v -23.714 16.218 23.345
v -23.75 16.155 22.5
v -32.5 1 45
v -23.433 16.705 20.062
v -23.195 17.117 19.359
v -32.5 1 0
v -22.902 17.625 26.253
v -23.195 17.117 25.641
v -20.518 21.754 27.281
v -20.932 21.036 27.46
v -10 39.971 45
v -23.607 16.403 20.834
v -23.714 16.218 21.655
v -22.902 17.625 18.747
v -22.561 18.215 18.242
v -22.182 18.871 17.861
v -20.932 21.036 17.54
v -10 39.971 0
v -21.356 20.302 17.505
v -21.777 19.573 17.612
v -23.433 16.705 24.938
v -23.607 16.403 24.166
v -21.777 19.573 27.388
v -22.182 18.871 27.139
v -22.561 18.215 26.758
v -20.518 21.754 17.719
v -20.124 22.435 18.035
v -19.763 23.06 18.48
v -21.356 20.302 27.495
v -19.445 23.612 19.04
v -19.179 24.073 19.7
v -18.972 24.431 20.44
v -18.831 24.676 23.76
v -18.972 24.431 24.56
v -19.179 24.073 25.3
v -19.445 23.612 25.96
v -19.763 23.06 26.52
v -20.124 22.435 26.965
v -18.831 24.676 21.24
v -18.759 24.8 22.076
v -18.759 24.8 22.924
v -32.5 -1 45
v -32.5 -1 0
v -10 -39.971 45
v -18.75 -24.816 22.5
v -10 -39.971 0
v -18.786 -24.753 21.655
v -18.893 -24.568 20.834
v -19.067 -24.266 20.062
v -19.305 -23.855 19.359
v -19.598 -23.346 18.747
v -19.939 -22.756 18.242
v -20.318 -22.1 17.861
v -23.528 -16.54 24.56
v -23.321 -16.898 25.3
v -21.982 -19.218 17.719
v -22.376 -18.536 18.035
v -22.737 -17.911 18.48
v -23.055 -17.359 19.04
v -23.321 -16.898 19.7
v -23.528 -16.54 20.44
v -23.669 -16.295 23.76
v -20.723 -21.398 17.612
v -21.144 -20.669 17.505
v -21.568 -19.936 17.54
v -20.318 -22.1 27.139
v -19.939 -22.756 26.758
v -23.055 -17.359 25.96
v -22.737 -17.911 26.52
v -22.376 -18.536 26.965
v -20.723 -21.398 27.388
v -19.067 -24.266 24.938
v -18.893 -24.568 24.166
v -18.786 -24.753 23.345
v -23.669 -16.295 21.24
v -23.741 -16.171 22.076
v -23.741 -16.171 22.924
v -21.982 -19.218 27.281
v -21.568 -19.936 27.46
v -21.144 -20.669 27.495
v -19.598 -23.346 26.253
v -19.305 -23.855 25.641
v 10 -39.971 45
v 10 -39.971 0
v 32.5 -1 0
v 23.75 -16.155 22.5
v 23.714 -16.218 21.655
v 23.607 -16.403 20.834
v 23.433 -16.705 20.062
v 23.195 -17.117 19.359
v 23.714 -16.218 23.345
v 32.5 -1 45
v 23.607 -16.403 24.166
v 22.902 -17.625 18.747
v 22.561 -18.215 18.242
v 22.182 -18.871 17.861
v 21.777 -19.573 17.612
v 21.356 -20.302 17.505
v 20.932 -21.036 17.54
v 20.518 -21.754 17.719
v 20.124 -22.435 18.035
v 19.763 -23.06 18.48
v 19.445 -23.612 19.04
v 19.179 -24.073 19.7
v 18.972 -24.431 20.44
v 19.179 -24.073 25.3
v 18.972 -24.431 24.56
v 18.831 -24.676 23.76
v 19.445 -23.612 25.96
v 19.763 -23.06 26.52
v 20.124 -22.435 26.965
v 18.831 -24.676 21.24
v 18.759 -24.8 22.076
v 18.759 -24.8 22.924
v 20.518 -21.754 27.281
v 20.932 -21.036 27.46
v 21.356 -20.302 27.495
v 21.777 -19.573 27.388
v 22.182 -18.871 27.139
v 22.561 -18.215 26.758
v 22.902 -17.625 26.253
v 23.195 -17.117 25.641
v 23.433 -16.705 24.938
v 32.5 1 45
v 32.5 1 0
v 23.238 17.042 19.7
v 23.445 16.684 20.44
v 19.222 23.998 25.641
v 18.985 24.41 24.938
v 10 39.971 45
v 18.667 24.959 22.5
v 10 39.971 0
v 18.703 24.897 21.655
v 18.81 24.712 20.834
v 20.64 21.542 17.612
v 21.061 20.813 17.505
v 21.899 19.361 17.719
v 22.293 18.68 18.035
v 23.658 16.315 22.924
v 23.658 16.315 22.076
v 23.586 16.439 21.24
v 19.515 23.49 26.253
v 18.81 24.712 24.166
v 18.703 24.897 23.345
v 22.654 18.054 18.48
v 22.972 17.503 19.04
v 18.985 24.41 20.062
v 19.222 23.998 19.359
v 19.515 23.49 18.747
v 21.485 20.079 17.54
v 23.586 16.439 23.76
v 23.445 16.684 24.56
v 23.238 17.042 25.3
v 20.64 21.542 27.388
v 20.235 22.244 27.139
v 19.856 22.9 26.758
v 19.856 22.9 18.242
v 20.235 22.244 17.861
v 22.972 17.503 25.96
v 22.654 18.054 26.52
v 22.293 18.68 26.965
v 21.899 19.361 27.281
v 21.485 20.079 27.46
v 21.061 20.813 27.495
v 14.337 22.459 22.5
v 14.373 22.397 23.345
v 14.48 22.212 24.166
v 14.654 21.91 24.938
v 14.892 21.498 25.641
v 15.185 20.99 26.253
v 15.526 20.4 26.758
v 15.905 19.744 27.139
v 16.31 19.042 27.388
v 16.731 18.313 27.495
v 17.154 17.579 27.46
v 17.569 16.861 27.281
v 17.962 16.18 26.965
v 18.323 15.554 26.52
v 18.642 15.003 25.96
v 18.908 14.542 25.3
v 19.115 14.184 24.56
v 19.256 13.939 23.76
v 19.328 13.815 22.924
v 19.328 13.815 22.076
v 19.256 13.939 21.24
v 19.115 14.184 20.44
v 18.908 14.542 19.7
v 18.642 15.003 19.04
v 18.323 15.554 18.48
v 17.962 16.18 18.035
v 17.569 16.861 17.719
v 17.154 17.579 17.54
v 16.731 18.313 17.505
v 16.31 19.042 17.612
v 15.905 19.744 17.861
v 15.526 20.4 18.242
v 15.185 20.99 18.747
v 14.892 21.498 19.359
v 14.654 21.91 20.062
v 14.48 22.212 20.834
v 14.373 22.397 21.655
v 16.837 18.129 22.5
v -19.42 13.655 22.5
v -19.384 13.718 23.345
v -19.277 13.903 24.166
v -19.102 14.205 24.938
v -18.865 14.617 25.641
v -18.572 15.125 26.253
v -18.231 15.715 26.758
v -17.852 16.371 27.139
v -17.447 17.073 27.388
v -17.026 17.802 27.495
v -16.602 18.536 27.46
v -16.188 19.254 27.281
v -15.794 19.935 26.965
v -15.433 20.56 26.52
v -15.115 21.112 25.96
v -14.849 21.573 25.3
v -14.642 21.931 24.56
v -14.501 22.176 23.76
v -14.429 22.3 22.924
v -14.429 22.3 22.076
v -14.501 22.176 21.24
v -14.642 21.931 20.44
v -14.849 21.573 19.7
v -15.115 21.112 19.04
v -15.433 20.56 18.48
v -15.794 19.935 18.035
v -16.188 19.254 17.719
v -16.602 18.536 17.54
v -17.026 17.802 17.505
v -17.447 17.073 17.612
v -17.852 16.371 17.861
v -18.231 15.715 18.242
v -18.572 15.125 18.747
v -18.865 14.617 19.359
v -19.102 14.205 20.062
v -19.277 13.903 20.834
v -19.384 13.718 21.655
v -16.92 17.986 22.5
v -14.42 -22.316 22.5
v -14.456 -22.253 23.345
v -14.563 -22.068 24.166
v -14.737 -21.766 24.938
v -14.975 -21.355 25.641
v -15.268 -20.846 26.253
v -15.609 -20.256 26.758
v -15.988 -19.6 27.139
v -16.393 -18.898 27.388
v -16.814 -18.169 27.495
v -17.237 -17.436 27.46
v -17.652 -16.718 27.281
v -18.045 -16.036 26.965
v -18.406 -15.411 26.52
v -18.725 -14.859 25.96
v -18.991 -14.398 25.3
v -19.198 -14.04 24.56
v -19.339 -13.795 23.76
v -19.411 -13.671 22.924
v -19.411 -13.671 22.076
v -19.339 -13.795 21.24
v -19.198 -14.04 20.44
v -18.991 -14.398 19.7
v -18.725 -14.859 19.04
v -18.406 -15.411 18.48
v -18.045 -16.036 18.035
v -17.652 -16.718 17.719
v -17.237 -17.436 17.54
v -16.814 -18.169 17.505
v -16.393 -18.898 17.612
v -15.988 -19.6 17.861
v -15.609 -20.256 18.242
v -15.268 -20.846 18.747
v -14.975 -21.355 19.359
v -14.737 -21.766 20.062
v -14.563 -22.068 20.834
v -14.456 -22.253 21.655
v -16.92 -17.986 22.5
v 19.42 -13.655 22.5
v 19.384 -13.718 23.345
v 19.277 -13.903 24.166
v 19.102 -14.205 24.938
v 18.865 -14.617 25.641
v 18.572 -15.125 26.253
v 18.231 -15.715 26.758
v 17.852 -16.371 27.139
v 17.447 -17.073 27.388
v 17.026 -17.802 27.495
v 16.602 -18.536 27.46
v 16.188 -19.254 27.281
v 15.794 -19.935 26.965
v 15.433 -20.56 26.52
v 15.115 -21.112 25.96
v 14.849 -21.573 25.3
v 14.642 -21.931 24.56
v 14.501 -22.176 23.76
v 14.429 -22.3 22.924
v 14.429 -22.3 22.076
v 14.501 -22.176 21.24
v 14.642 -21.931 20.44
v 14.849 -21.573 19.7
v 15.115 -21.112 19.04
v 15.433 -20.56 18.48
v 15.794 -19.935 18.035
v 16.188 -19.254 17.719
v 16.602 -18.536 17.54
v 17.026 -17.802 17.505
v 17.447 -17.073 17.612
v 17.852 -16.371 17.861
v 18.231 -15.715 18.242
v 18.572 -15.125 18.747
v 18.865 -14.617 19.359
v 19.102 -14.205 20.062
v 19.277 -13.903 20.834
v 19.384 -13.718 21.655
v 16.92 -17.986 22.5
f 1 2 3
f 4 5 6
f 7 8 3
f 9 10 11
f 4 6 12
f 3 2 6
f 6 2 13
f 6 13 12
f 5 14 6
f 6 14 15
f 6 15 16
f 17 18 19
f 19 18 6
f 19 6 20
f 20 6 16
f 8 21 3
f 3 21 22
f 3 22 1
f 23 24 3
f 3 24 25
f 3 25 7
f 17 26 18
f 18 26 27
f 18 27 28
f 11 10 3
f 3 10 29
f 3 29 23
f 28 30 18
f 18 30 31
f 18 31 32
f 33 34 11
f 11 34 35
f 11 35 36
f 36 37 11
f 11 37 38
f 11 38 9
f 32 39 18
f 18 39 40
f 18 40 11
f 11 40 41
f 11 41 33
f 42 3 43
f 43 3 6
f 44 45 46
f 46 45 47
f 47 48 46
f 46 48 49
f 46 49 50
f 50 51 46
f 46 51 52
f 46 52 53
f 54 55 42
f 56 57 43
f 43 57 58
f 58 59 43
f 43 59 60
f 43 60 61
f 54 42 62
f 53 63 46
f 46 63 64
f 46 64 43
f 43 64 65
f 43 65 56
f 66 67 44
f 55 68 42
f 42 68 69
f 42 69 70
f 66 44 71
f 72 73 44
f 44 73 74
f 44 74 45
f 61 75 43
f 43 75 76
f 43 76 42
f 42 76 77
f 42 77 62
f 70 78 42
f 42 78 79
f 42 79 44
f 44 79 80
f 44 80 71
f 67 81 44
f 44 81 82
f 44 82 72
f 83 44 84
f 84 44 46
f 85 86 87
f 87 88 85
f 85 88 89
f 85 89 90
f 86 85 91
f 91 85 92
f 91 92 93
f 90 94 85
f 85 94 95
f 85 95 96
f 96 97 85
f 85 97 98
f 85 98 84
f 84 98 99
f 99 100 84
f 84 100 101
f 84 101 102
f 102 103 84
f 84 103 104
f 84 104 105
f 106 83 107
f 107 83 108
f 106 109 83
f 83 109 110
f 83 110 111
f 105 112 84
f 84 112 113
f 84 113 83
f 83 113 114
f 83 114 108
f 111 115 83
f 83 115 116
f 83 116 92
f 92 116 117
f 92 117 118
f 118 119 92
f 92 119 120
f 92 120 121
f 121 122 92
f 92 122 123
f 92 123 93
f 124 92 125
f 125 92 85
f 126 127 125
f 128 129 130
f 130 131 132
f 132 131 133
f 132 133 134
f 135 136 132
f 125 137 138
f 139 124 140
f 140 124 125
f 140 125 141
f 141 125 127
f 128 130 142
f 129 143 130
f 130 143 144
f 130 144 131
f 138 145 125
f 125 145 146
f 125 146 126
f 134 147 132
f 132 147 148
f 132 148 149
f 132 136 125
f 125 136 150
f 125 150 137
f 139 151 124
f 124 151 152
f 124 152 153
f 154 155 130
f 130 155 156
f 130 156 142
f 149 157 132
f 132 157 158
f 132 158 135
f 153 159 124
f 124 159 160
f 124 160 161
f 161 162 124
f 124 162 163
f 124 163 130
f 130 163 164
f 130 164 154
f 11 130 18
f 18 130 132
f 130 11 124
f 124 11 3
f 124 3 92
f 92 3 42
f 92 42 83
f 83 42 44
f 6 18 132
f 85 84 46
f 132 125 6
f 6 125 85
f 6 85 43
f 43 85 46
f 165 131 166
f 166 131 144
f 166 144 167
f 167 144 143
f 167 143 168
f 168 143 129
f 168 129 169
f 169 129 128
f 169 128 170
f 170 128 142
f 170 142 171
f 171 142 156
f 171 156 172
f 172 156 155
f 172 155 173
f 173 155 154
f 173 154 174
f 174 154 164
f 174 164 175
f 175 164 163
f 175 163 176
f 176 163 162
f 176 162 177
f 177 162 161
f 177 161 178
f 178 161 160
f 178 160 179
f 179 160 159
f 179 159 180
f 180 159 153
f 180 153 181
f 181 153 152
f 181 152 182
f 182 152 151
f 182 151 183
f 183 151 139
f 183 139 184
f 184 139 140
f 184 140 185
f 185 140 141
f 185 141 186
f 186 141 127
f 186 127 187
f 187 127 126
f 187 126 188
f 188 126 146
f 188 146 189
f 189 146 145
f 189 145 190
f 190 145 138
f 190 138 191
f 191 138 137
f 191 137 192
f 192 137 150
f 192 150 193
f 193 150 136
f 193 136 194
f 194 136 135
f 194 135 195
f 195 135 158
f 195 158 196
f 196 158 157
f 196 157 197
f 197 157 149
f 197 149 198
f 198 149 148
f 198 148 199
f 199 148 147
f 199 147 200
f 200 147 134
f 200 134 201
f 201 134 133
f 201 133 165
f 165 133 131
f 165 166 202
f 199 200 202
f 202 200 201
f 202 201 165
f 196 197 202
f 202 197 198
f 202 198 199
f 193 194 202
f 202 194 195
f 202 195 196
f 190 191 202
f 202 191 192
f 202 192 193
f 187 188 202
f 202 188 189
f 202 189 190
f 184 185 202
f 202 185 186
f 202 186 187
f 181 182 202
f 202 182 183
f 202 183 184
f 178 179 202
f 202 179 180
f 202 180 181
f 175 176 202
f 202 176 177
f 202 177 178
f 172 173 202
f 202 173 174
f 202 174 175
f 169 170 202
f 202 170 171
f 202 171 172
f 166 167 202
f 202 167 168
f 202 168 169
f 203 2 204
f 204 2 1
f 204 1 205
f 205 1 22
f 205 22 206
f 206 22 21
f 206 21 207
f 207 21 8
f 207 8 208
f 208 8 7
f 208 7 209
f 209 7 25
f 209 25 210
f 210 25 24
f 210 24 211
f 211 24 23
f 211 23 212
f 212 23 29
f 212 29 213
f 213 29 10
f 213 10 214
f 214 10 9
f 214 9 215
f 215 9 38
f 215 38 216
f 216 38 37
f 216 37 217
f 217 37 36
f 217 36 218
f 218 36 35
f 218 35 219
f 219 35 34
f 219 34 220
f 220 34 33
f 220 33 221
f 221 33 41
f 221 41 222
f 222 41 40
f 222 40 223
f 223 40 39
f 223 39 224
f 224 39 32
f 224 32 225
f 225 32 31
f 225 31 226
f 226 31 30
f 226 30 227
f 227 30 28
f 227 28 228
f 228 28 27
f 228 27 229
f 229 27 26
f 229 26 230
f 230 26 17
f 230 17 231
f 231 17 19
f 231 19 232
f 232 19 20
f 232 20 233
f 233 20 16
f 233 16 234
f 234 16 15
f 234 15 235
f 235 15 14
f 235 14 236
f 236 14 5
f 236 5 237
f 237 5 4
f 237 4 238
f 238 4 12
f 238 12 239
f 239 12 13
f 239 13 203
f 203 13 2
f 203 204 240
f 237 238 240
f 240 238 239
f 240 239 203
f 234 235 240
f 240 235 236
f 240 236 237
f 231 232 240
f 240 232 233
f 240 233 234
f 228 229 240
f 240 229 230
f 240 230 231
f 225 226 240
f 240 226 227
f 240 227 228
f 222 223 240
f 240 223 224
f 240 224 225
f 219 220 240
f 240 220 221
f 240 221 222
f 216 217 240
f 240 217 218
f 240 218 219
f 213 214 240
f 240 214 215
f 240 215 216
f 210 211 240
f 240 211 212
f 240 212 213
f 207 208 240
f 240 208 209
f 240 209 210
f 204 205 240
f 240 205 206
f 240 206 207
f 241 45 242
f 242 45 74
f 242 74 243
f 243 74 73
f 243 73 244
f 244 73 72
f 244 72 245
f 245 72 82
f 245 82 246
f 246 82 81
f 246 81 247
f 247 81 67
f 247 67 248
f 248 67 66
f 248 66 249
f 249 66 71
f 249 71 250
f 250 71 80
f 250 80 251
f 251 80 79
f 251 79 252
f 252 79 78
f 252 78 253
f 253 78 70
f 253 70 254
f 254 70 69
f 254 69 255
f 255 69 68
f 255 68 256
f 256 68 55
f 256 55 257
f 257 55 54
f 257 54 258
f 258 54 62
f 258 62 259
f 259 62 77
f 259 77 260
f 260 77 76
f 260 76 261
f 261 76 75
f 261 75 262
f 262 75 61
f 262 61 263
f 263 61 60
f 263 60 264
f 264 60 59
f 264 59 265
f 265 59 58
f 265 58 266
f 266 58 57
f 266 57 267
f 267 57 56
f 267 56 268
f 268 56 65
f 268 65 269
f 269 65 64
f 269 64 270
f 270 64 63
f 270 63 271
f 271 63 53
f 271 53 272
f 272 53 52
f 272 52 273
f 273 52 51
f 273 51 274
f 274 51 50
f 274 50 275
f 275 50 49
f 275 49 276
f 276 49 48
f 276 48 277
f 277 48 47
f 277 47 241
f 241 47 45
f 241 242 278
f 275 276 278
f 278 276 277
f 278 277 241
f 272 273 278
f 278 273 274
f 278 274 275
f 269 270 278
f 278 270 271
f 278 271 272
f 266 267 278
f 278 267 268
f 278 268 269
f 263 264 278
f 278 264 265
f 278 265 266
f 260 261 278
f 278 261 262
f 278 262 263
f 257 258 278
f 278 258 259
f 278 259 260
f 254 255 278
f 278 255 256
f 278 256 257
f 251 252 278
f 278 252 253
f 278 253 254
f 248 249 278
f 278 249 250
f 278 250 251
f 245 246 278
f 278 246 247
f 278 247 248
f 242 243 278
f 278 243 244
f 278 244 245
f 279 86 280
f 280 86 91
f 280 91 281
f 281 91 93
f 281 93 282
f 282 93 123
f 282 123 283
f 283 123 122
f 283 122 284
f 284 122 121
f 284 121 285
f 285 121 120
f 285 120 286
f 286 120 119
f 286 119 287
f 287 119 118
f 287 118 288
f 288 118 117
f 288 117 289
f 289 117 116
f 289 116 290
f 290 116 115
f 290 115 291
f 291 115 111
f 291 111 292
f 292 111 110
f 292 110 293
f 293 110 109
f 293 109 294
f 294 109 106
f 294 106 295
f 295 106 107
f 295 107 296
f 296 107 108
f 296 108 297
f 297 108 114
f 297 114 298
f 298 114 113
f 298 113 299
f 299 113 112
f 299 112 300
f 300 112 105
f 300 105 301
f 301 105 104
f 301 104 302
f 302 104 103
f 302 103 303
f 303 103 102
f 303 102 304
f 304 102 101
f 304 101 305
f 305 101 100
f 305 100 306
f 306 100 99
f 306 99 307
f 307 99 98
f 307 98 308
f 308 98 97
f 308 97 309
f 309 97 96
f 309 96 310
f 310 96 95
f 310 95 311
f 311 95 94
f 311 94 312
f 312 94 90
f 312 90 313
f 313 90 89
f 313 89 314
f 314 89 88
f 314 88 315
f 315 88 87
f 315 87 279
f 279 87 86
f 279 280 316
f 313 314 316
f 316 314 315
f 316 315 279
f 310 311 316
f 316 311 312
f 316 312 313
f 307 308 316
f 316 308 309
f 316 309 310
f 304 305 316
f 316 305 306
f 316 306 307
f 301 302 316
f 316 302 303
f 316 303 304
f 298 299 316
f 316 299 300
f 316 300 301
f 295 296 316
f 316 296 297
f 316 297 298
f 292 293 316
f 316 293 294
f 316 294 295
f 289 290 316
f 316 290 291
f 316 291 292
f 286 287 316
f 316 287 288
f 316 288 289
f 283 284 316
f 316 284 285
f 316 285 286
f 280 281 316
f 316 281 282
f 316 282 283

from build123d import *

# Parameters (mm, degrees)
BOSS_EXTRUDE1_DEPTH = 45
SKETCH3_R           = 5
CUT_EXTRUDE1_DEPTH  = 5
SKETCH4_R           = 5
CUT_EXTRUDE2_DEPTH  = 5
SKETCH5_R           = 5
CUT_EXTRUDE3_DEPTH  = 5
SKETCH6_R           = 5
CUT_EXTRUDE4_DEPTH  = 5


with BuildPart() as part:
    # Sketch2 → Boss-Extrude1 (new body)
    with BuildSketch(Plane.XY):
        Polygon((-10, 39.97114317), (10, 39.97114317), (32.5, 1), (32.5, -1), (10, -39.97114317), (-10, -39.97114317), (-32.5, -1), (-32.5, 1), align=None)
    extrude(amount=BOSS_EXTRUDE1_DEPTH)

    # Sketch3 → Cut-Extrude1 (cut)
    with BuildSketch(Plane(origin=(24.808012702, 14.322912811, 0), x_dir=(0, 0, -1), z_dir=(0.8660254037844365, 0.500000000000004, 0))):
        with Locations(Location((-22.5, 7.281943839, 0), (0, 0, 90))):
            Circle(SKETCH3_R)
    extrude(amount=-CUT_EXTRUDE1_DEPTH, mode=Mode.SUBTRACT)

    # Sketch4 → Cut-Extrude2 (cut)
    with BuildSketch(Plane(origin=(-24.808012702, 14.322912811, 0), x_dir=(0, 0, 1), z_dir=(-0.8660254037844253, 0.5000000000000234, 0))):
        with Locations(Location((22.5, 7.116025404, 0), (0, 0, 270))):
            Circle(SKETCH4_R)
    extrude(amount=-CUT_EXTRUDE2_DEPTH, mode=Mode.SUBTRACT)

    # Sketch5 → Cut-Extrude3 (cut)
    with BuildSketch(Plane(origin=(-24.808012702, -14.322912811, 0), x_dir=(0, 0, 1), z_dir=(-0.8660254037844344, -0.5000000000000075, 0))):
        with Locations(Location((22.5, -7.116025404, 0), (0, 0, 270))):
            Circle(SKETCH5_R)
    extrude(amount=-CUT_EXTRUDE3_DEPTH, mode=Mode.SUBTRACT)

    # Sketch6 → Cut-Extrude4 (cut)
    with BuildSketch(Plane(origin=(24.808012702, -14.322912811, 0), x_dir=(0, 0, -1), z_dir=(0.8660254037844365, -0.500000000000004, 0))):
        with Locations(Location((-22.5, -7.116025404, 0), (0, 0, 90))):
            Circle(SKETCH6_R)
    extrude(amount=-CUT_EXTRUDE4_DEPTH, mode=Mode.SUBTRACT)


solid = part.part
